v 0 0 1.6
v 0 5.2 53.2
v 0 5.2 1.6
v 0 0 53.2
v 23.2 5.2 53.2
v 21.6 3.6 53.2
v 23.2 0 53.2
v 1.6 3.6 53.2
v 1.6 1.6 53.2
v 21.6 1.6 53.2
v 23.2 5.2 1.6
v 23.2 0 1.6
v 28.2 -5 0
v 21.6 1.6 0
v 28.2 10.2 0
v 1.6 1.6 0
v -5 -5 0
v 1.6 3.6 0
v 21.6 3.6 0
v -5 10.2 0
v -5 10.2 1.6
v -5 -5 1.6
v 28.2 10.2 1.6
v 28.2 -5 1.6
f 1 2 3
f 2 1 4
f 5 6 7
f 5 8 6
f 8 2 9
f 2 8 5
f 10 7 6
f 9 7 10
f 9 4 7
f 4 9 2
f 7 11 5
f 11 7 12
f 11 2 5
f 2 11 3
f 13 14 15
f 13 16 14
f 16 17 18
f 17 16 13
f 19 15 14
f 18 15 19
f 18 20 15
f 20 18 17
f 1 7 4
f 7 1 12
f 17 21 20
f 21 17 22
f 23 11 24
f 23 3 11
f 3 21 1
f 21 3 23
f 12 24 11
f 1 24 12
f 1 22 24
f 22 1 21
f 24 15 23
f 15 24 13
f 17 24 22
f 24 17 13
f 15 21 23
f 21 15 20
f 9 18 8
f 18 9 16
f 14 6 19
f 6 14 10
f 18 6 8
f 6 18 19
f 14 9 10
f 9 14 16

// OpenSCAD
materialThickness = 1.6;
cutX = 20;
cutY = 2;
cutZ = 50 + 2*materialThickness;
latchOverHang = 5;

// Cut through ikea LACK for raspi camera cable
module cameraHole() {
    difference() {
        union() {
            // base cube
            cube([
                cutX + 2*materialThickness,
                cutY + 2*materialThickness,
                cutZ
            ]);
            // add latch at top side
            translate([
                -latchOverHang,
                -latchOverHang,
                0
            ]) cube([
                cutX + 2*materialThickness + 2*latchOverHang,
                cutY + 2*materialThickness + 2*latchOverHang,
                materialThickness
            ]);
        }
        // remove hole
        translate([
            materialThickness,
            materialThickness,
            0
        ]) cube([
            cutX,
            cutY,
            cutZ
        ]);
    };
}

cameraHole();
